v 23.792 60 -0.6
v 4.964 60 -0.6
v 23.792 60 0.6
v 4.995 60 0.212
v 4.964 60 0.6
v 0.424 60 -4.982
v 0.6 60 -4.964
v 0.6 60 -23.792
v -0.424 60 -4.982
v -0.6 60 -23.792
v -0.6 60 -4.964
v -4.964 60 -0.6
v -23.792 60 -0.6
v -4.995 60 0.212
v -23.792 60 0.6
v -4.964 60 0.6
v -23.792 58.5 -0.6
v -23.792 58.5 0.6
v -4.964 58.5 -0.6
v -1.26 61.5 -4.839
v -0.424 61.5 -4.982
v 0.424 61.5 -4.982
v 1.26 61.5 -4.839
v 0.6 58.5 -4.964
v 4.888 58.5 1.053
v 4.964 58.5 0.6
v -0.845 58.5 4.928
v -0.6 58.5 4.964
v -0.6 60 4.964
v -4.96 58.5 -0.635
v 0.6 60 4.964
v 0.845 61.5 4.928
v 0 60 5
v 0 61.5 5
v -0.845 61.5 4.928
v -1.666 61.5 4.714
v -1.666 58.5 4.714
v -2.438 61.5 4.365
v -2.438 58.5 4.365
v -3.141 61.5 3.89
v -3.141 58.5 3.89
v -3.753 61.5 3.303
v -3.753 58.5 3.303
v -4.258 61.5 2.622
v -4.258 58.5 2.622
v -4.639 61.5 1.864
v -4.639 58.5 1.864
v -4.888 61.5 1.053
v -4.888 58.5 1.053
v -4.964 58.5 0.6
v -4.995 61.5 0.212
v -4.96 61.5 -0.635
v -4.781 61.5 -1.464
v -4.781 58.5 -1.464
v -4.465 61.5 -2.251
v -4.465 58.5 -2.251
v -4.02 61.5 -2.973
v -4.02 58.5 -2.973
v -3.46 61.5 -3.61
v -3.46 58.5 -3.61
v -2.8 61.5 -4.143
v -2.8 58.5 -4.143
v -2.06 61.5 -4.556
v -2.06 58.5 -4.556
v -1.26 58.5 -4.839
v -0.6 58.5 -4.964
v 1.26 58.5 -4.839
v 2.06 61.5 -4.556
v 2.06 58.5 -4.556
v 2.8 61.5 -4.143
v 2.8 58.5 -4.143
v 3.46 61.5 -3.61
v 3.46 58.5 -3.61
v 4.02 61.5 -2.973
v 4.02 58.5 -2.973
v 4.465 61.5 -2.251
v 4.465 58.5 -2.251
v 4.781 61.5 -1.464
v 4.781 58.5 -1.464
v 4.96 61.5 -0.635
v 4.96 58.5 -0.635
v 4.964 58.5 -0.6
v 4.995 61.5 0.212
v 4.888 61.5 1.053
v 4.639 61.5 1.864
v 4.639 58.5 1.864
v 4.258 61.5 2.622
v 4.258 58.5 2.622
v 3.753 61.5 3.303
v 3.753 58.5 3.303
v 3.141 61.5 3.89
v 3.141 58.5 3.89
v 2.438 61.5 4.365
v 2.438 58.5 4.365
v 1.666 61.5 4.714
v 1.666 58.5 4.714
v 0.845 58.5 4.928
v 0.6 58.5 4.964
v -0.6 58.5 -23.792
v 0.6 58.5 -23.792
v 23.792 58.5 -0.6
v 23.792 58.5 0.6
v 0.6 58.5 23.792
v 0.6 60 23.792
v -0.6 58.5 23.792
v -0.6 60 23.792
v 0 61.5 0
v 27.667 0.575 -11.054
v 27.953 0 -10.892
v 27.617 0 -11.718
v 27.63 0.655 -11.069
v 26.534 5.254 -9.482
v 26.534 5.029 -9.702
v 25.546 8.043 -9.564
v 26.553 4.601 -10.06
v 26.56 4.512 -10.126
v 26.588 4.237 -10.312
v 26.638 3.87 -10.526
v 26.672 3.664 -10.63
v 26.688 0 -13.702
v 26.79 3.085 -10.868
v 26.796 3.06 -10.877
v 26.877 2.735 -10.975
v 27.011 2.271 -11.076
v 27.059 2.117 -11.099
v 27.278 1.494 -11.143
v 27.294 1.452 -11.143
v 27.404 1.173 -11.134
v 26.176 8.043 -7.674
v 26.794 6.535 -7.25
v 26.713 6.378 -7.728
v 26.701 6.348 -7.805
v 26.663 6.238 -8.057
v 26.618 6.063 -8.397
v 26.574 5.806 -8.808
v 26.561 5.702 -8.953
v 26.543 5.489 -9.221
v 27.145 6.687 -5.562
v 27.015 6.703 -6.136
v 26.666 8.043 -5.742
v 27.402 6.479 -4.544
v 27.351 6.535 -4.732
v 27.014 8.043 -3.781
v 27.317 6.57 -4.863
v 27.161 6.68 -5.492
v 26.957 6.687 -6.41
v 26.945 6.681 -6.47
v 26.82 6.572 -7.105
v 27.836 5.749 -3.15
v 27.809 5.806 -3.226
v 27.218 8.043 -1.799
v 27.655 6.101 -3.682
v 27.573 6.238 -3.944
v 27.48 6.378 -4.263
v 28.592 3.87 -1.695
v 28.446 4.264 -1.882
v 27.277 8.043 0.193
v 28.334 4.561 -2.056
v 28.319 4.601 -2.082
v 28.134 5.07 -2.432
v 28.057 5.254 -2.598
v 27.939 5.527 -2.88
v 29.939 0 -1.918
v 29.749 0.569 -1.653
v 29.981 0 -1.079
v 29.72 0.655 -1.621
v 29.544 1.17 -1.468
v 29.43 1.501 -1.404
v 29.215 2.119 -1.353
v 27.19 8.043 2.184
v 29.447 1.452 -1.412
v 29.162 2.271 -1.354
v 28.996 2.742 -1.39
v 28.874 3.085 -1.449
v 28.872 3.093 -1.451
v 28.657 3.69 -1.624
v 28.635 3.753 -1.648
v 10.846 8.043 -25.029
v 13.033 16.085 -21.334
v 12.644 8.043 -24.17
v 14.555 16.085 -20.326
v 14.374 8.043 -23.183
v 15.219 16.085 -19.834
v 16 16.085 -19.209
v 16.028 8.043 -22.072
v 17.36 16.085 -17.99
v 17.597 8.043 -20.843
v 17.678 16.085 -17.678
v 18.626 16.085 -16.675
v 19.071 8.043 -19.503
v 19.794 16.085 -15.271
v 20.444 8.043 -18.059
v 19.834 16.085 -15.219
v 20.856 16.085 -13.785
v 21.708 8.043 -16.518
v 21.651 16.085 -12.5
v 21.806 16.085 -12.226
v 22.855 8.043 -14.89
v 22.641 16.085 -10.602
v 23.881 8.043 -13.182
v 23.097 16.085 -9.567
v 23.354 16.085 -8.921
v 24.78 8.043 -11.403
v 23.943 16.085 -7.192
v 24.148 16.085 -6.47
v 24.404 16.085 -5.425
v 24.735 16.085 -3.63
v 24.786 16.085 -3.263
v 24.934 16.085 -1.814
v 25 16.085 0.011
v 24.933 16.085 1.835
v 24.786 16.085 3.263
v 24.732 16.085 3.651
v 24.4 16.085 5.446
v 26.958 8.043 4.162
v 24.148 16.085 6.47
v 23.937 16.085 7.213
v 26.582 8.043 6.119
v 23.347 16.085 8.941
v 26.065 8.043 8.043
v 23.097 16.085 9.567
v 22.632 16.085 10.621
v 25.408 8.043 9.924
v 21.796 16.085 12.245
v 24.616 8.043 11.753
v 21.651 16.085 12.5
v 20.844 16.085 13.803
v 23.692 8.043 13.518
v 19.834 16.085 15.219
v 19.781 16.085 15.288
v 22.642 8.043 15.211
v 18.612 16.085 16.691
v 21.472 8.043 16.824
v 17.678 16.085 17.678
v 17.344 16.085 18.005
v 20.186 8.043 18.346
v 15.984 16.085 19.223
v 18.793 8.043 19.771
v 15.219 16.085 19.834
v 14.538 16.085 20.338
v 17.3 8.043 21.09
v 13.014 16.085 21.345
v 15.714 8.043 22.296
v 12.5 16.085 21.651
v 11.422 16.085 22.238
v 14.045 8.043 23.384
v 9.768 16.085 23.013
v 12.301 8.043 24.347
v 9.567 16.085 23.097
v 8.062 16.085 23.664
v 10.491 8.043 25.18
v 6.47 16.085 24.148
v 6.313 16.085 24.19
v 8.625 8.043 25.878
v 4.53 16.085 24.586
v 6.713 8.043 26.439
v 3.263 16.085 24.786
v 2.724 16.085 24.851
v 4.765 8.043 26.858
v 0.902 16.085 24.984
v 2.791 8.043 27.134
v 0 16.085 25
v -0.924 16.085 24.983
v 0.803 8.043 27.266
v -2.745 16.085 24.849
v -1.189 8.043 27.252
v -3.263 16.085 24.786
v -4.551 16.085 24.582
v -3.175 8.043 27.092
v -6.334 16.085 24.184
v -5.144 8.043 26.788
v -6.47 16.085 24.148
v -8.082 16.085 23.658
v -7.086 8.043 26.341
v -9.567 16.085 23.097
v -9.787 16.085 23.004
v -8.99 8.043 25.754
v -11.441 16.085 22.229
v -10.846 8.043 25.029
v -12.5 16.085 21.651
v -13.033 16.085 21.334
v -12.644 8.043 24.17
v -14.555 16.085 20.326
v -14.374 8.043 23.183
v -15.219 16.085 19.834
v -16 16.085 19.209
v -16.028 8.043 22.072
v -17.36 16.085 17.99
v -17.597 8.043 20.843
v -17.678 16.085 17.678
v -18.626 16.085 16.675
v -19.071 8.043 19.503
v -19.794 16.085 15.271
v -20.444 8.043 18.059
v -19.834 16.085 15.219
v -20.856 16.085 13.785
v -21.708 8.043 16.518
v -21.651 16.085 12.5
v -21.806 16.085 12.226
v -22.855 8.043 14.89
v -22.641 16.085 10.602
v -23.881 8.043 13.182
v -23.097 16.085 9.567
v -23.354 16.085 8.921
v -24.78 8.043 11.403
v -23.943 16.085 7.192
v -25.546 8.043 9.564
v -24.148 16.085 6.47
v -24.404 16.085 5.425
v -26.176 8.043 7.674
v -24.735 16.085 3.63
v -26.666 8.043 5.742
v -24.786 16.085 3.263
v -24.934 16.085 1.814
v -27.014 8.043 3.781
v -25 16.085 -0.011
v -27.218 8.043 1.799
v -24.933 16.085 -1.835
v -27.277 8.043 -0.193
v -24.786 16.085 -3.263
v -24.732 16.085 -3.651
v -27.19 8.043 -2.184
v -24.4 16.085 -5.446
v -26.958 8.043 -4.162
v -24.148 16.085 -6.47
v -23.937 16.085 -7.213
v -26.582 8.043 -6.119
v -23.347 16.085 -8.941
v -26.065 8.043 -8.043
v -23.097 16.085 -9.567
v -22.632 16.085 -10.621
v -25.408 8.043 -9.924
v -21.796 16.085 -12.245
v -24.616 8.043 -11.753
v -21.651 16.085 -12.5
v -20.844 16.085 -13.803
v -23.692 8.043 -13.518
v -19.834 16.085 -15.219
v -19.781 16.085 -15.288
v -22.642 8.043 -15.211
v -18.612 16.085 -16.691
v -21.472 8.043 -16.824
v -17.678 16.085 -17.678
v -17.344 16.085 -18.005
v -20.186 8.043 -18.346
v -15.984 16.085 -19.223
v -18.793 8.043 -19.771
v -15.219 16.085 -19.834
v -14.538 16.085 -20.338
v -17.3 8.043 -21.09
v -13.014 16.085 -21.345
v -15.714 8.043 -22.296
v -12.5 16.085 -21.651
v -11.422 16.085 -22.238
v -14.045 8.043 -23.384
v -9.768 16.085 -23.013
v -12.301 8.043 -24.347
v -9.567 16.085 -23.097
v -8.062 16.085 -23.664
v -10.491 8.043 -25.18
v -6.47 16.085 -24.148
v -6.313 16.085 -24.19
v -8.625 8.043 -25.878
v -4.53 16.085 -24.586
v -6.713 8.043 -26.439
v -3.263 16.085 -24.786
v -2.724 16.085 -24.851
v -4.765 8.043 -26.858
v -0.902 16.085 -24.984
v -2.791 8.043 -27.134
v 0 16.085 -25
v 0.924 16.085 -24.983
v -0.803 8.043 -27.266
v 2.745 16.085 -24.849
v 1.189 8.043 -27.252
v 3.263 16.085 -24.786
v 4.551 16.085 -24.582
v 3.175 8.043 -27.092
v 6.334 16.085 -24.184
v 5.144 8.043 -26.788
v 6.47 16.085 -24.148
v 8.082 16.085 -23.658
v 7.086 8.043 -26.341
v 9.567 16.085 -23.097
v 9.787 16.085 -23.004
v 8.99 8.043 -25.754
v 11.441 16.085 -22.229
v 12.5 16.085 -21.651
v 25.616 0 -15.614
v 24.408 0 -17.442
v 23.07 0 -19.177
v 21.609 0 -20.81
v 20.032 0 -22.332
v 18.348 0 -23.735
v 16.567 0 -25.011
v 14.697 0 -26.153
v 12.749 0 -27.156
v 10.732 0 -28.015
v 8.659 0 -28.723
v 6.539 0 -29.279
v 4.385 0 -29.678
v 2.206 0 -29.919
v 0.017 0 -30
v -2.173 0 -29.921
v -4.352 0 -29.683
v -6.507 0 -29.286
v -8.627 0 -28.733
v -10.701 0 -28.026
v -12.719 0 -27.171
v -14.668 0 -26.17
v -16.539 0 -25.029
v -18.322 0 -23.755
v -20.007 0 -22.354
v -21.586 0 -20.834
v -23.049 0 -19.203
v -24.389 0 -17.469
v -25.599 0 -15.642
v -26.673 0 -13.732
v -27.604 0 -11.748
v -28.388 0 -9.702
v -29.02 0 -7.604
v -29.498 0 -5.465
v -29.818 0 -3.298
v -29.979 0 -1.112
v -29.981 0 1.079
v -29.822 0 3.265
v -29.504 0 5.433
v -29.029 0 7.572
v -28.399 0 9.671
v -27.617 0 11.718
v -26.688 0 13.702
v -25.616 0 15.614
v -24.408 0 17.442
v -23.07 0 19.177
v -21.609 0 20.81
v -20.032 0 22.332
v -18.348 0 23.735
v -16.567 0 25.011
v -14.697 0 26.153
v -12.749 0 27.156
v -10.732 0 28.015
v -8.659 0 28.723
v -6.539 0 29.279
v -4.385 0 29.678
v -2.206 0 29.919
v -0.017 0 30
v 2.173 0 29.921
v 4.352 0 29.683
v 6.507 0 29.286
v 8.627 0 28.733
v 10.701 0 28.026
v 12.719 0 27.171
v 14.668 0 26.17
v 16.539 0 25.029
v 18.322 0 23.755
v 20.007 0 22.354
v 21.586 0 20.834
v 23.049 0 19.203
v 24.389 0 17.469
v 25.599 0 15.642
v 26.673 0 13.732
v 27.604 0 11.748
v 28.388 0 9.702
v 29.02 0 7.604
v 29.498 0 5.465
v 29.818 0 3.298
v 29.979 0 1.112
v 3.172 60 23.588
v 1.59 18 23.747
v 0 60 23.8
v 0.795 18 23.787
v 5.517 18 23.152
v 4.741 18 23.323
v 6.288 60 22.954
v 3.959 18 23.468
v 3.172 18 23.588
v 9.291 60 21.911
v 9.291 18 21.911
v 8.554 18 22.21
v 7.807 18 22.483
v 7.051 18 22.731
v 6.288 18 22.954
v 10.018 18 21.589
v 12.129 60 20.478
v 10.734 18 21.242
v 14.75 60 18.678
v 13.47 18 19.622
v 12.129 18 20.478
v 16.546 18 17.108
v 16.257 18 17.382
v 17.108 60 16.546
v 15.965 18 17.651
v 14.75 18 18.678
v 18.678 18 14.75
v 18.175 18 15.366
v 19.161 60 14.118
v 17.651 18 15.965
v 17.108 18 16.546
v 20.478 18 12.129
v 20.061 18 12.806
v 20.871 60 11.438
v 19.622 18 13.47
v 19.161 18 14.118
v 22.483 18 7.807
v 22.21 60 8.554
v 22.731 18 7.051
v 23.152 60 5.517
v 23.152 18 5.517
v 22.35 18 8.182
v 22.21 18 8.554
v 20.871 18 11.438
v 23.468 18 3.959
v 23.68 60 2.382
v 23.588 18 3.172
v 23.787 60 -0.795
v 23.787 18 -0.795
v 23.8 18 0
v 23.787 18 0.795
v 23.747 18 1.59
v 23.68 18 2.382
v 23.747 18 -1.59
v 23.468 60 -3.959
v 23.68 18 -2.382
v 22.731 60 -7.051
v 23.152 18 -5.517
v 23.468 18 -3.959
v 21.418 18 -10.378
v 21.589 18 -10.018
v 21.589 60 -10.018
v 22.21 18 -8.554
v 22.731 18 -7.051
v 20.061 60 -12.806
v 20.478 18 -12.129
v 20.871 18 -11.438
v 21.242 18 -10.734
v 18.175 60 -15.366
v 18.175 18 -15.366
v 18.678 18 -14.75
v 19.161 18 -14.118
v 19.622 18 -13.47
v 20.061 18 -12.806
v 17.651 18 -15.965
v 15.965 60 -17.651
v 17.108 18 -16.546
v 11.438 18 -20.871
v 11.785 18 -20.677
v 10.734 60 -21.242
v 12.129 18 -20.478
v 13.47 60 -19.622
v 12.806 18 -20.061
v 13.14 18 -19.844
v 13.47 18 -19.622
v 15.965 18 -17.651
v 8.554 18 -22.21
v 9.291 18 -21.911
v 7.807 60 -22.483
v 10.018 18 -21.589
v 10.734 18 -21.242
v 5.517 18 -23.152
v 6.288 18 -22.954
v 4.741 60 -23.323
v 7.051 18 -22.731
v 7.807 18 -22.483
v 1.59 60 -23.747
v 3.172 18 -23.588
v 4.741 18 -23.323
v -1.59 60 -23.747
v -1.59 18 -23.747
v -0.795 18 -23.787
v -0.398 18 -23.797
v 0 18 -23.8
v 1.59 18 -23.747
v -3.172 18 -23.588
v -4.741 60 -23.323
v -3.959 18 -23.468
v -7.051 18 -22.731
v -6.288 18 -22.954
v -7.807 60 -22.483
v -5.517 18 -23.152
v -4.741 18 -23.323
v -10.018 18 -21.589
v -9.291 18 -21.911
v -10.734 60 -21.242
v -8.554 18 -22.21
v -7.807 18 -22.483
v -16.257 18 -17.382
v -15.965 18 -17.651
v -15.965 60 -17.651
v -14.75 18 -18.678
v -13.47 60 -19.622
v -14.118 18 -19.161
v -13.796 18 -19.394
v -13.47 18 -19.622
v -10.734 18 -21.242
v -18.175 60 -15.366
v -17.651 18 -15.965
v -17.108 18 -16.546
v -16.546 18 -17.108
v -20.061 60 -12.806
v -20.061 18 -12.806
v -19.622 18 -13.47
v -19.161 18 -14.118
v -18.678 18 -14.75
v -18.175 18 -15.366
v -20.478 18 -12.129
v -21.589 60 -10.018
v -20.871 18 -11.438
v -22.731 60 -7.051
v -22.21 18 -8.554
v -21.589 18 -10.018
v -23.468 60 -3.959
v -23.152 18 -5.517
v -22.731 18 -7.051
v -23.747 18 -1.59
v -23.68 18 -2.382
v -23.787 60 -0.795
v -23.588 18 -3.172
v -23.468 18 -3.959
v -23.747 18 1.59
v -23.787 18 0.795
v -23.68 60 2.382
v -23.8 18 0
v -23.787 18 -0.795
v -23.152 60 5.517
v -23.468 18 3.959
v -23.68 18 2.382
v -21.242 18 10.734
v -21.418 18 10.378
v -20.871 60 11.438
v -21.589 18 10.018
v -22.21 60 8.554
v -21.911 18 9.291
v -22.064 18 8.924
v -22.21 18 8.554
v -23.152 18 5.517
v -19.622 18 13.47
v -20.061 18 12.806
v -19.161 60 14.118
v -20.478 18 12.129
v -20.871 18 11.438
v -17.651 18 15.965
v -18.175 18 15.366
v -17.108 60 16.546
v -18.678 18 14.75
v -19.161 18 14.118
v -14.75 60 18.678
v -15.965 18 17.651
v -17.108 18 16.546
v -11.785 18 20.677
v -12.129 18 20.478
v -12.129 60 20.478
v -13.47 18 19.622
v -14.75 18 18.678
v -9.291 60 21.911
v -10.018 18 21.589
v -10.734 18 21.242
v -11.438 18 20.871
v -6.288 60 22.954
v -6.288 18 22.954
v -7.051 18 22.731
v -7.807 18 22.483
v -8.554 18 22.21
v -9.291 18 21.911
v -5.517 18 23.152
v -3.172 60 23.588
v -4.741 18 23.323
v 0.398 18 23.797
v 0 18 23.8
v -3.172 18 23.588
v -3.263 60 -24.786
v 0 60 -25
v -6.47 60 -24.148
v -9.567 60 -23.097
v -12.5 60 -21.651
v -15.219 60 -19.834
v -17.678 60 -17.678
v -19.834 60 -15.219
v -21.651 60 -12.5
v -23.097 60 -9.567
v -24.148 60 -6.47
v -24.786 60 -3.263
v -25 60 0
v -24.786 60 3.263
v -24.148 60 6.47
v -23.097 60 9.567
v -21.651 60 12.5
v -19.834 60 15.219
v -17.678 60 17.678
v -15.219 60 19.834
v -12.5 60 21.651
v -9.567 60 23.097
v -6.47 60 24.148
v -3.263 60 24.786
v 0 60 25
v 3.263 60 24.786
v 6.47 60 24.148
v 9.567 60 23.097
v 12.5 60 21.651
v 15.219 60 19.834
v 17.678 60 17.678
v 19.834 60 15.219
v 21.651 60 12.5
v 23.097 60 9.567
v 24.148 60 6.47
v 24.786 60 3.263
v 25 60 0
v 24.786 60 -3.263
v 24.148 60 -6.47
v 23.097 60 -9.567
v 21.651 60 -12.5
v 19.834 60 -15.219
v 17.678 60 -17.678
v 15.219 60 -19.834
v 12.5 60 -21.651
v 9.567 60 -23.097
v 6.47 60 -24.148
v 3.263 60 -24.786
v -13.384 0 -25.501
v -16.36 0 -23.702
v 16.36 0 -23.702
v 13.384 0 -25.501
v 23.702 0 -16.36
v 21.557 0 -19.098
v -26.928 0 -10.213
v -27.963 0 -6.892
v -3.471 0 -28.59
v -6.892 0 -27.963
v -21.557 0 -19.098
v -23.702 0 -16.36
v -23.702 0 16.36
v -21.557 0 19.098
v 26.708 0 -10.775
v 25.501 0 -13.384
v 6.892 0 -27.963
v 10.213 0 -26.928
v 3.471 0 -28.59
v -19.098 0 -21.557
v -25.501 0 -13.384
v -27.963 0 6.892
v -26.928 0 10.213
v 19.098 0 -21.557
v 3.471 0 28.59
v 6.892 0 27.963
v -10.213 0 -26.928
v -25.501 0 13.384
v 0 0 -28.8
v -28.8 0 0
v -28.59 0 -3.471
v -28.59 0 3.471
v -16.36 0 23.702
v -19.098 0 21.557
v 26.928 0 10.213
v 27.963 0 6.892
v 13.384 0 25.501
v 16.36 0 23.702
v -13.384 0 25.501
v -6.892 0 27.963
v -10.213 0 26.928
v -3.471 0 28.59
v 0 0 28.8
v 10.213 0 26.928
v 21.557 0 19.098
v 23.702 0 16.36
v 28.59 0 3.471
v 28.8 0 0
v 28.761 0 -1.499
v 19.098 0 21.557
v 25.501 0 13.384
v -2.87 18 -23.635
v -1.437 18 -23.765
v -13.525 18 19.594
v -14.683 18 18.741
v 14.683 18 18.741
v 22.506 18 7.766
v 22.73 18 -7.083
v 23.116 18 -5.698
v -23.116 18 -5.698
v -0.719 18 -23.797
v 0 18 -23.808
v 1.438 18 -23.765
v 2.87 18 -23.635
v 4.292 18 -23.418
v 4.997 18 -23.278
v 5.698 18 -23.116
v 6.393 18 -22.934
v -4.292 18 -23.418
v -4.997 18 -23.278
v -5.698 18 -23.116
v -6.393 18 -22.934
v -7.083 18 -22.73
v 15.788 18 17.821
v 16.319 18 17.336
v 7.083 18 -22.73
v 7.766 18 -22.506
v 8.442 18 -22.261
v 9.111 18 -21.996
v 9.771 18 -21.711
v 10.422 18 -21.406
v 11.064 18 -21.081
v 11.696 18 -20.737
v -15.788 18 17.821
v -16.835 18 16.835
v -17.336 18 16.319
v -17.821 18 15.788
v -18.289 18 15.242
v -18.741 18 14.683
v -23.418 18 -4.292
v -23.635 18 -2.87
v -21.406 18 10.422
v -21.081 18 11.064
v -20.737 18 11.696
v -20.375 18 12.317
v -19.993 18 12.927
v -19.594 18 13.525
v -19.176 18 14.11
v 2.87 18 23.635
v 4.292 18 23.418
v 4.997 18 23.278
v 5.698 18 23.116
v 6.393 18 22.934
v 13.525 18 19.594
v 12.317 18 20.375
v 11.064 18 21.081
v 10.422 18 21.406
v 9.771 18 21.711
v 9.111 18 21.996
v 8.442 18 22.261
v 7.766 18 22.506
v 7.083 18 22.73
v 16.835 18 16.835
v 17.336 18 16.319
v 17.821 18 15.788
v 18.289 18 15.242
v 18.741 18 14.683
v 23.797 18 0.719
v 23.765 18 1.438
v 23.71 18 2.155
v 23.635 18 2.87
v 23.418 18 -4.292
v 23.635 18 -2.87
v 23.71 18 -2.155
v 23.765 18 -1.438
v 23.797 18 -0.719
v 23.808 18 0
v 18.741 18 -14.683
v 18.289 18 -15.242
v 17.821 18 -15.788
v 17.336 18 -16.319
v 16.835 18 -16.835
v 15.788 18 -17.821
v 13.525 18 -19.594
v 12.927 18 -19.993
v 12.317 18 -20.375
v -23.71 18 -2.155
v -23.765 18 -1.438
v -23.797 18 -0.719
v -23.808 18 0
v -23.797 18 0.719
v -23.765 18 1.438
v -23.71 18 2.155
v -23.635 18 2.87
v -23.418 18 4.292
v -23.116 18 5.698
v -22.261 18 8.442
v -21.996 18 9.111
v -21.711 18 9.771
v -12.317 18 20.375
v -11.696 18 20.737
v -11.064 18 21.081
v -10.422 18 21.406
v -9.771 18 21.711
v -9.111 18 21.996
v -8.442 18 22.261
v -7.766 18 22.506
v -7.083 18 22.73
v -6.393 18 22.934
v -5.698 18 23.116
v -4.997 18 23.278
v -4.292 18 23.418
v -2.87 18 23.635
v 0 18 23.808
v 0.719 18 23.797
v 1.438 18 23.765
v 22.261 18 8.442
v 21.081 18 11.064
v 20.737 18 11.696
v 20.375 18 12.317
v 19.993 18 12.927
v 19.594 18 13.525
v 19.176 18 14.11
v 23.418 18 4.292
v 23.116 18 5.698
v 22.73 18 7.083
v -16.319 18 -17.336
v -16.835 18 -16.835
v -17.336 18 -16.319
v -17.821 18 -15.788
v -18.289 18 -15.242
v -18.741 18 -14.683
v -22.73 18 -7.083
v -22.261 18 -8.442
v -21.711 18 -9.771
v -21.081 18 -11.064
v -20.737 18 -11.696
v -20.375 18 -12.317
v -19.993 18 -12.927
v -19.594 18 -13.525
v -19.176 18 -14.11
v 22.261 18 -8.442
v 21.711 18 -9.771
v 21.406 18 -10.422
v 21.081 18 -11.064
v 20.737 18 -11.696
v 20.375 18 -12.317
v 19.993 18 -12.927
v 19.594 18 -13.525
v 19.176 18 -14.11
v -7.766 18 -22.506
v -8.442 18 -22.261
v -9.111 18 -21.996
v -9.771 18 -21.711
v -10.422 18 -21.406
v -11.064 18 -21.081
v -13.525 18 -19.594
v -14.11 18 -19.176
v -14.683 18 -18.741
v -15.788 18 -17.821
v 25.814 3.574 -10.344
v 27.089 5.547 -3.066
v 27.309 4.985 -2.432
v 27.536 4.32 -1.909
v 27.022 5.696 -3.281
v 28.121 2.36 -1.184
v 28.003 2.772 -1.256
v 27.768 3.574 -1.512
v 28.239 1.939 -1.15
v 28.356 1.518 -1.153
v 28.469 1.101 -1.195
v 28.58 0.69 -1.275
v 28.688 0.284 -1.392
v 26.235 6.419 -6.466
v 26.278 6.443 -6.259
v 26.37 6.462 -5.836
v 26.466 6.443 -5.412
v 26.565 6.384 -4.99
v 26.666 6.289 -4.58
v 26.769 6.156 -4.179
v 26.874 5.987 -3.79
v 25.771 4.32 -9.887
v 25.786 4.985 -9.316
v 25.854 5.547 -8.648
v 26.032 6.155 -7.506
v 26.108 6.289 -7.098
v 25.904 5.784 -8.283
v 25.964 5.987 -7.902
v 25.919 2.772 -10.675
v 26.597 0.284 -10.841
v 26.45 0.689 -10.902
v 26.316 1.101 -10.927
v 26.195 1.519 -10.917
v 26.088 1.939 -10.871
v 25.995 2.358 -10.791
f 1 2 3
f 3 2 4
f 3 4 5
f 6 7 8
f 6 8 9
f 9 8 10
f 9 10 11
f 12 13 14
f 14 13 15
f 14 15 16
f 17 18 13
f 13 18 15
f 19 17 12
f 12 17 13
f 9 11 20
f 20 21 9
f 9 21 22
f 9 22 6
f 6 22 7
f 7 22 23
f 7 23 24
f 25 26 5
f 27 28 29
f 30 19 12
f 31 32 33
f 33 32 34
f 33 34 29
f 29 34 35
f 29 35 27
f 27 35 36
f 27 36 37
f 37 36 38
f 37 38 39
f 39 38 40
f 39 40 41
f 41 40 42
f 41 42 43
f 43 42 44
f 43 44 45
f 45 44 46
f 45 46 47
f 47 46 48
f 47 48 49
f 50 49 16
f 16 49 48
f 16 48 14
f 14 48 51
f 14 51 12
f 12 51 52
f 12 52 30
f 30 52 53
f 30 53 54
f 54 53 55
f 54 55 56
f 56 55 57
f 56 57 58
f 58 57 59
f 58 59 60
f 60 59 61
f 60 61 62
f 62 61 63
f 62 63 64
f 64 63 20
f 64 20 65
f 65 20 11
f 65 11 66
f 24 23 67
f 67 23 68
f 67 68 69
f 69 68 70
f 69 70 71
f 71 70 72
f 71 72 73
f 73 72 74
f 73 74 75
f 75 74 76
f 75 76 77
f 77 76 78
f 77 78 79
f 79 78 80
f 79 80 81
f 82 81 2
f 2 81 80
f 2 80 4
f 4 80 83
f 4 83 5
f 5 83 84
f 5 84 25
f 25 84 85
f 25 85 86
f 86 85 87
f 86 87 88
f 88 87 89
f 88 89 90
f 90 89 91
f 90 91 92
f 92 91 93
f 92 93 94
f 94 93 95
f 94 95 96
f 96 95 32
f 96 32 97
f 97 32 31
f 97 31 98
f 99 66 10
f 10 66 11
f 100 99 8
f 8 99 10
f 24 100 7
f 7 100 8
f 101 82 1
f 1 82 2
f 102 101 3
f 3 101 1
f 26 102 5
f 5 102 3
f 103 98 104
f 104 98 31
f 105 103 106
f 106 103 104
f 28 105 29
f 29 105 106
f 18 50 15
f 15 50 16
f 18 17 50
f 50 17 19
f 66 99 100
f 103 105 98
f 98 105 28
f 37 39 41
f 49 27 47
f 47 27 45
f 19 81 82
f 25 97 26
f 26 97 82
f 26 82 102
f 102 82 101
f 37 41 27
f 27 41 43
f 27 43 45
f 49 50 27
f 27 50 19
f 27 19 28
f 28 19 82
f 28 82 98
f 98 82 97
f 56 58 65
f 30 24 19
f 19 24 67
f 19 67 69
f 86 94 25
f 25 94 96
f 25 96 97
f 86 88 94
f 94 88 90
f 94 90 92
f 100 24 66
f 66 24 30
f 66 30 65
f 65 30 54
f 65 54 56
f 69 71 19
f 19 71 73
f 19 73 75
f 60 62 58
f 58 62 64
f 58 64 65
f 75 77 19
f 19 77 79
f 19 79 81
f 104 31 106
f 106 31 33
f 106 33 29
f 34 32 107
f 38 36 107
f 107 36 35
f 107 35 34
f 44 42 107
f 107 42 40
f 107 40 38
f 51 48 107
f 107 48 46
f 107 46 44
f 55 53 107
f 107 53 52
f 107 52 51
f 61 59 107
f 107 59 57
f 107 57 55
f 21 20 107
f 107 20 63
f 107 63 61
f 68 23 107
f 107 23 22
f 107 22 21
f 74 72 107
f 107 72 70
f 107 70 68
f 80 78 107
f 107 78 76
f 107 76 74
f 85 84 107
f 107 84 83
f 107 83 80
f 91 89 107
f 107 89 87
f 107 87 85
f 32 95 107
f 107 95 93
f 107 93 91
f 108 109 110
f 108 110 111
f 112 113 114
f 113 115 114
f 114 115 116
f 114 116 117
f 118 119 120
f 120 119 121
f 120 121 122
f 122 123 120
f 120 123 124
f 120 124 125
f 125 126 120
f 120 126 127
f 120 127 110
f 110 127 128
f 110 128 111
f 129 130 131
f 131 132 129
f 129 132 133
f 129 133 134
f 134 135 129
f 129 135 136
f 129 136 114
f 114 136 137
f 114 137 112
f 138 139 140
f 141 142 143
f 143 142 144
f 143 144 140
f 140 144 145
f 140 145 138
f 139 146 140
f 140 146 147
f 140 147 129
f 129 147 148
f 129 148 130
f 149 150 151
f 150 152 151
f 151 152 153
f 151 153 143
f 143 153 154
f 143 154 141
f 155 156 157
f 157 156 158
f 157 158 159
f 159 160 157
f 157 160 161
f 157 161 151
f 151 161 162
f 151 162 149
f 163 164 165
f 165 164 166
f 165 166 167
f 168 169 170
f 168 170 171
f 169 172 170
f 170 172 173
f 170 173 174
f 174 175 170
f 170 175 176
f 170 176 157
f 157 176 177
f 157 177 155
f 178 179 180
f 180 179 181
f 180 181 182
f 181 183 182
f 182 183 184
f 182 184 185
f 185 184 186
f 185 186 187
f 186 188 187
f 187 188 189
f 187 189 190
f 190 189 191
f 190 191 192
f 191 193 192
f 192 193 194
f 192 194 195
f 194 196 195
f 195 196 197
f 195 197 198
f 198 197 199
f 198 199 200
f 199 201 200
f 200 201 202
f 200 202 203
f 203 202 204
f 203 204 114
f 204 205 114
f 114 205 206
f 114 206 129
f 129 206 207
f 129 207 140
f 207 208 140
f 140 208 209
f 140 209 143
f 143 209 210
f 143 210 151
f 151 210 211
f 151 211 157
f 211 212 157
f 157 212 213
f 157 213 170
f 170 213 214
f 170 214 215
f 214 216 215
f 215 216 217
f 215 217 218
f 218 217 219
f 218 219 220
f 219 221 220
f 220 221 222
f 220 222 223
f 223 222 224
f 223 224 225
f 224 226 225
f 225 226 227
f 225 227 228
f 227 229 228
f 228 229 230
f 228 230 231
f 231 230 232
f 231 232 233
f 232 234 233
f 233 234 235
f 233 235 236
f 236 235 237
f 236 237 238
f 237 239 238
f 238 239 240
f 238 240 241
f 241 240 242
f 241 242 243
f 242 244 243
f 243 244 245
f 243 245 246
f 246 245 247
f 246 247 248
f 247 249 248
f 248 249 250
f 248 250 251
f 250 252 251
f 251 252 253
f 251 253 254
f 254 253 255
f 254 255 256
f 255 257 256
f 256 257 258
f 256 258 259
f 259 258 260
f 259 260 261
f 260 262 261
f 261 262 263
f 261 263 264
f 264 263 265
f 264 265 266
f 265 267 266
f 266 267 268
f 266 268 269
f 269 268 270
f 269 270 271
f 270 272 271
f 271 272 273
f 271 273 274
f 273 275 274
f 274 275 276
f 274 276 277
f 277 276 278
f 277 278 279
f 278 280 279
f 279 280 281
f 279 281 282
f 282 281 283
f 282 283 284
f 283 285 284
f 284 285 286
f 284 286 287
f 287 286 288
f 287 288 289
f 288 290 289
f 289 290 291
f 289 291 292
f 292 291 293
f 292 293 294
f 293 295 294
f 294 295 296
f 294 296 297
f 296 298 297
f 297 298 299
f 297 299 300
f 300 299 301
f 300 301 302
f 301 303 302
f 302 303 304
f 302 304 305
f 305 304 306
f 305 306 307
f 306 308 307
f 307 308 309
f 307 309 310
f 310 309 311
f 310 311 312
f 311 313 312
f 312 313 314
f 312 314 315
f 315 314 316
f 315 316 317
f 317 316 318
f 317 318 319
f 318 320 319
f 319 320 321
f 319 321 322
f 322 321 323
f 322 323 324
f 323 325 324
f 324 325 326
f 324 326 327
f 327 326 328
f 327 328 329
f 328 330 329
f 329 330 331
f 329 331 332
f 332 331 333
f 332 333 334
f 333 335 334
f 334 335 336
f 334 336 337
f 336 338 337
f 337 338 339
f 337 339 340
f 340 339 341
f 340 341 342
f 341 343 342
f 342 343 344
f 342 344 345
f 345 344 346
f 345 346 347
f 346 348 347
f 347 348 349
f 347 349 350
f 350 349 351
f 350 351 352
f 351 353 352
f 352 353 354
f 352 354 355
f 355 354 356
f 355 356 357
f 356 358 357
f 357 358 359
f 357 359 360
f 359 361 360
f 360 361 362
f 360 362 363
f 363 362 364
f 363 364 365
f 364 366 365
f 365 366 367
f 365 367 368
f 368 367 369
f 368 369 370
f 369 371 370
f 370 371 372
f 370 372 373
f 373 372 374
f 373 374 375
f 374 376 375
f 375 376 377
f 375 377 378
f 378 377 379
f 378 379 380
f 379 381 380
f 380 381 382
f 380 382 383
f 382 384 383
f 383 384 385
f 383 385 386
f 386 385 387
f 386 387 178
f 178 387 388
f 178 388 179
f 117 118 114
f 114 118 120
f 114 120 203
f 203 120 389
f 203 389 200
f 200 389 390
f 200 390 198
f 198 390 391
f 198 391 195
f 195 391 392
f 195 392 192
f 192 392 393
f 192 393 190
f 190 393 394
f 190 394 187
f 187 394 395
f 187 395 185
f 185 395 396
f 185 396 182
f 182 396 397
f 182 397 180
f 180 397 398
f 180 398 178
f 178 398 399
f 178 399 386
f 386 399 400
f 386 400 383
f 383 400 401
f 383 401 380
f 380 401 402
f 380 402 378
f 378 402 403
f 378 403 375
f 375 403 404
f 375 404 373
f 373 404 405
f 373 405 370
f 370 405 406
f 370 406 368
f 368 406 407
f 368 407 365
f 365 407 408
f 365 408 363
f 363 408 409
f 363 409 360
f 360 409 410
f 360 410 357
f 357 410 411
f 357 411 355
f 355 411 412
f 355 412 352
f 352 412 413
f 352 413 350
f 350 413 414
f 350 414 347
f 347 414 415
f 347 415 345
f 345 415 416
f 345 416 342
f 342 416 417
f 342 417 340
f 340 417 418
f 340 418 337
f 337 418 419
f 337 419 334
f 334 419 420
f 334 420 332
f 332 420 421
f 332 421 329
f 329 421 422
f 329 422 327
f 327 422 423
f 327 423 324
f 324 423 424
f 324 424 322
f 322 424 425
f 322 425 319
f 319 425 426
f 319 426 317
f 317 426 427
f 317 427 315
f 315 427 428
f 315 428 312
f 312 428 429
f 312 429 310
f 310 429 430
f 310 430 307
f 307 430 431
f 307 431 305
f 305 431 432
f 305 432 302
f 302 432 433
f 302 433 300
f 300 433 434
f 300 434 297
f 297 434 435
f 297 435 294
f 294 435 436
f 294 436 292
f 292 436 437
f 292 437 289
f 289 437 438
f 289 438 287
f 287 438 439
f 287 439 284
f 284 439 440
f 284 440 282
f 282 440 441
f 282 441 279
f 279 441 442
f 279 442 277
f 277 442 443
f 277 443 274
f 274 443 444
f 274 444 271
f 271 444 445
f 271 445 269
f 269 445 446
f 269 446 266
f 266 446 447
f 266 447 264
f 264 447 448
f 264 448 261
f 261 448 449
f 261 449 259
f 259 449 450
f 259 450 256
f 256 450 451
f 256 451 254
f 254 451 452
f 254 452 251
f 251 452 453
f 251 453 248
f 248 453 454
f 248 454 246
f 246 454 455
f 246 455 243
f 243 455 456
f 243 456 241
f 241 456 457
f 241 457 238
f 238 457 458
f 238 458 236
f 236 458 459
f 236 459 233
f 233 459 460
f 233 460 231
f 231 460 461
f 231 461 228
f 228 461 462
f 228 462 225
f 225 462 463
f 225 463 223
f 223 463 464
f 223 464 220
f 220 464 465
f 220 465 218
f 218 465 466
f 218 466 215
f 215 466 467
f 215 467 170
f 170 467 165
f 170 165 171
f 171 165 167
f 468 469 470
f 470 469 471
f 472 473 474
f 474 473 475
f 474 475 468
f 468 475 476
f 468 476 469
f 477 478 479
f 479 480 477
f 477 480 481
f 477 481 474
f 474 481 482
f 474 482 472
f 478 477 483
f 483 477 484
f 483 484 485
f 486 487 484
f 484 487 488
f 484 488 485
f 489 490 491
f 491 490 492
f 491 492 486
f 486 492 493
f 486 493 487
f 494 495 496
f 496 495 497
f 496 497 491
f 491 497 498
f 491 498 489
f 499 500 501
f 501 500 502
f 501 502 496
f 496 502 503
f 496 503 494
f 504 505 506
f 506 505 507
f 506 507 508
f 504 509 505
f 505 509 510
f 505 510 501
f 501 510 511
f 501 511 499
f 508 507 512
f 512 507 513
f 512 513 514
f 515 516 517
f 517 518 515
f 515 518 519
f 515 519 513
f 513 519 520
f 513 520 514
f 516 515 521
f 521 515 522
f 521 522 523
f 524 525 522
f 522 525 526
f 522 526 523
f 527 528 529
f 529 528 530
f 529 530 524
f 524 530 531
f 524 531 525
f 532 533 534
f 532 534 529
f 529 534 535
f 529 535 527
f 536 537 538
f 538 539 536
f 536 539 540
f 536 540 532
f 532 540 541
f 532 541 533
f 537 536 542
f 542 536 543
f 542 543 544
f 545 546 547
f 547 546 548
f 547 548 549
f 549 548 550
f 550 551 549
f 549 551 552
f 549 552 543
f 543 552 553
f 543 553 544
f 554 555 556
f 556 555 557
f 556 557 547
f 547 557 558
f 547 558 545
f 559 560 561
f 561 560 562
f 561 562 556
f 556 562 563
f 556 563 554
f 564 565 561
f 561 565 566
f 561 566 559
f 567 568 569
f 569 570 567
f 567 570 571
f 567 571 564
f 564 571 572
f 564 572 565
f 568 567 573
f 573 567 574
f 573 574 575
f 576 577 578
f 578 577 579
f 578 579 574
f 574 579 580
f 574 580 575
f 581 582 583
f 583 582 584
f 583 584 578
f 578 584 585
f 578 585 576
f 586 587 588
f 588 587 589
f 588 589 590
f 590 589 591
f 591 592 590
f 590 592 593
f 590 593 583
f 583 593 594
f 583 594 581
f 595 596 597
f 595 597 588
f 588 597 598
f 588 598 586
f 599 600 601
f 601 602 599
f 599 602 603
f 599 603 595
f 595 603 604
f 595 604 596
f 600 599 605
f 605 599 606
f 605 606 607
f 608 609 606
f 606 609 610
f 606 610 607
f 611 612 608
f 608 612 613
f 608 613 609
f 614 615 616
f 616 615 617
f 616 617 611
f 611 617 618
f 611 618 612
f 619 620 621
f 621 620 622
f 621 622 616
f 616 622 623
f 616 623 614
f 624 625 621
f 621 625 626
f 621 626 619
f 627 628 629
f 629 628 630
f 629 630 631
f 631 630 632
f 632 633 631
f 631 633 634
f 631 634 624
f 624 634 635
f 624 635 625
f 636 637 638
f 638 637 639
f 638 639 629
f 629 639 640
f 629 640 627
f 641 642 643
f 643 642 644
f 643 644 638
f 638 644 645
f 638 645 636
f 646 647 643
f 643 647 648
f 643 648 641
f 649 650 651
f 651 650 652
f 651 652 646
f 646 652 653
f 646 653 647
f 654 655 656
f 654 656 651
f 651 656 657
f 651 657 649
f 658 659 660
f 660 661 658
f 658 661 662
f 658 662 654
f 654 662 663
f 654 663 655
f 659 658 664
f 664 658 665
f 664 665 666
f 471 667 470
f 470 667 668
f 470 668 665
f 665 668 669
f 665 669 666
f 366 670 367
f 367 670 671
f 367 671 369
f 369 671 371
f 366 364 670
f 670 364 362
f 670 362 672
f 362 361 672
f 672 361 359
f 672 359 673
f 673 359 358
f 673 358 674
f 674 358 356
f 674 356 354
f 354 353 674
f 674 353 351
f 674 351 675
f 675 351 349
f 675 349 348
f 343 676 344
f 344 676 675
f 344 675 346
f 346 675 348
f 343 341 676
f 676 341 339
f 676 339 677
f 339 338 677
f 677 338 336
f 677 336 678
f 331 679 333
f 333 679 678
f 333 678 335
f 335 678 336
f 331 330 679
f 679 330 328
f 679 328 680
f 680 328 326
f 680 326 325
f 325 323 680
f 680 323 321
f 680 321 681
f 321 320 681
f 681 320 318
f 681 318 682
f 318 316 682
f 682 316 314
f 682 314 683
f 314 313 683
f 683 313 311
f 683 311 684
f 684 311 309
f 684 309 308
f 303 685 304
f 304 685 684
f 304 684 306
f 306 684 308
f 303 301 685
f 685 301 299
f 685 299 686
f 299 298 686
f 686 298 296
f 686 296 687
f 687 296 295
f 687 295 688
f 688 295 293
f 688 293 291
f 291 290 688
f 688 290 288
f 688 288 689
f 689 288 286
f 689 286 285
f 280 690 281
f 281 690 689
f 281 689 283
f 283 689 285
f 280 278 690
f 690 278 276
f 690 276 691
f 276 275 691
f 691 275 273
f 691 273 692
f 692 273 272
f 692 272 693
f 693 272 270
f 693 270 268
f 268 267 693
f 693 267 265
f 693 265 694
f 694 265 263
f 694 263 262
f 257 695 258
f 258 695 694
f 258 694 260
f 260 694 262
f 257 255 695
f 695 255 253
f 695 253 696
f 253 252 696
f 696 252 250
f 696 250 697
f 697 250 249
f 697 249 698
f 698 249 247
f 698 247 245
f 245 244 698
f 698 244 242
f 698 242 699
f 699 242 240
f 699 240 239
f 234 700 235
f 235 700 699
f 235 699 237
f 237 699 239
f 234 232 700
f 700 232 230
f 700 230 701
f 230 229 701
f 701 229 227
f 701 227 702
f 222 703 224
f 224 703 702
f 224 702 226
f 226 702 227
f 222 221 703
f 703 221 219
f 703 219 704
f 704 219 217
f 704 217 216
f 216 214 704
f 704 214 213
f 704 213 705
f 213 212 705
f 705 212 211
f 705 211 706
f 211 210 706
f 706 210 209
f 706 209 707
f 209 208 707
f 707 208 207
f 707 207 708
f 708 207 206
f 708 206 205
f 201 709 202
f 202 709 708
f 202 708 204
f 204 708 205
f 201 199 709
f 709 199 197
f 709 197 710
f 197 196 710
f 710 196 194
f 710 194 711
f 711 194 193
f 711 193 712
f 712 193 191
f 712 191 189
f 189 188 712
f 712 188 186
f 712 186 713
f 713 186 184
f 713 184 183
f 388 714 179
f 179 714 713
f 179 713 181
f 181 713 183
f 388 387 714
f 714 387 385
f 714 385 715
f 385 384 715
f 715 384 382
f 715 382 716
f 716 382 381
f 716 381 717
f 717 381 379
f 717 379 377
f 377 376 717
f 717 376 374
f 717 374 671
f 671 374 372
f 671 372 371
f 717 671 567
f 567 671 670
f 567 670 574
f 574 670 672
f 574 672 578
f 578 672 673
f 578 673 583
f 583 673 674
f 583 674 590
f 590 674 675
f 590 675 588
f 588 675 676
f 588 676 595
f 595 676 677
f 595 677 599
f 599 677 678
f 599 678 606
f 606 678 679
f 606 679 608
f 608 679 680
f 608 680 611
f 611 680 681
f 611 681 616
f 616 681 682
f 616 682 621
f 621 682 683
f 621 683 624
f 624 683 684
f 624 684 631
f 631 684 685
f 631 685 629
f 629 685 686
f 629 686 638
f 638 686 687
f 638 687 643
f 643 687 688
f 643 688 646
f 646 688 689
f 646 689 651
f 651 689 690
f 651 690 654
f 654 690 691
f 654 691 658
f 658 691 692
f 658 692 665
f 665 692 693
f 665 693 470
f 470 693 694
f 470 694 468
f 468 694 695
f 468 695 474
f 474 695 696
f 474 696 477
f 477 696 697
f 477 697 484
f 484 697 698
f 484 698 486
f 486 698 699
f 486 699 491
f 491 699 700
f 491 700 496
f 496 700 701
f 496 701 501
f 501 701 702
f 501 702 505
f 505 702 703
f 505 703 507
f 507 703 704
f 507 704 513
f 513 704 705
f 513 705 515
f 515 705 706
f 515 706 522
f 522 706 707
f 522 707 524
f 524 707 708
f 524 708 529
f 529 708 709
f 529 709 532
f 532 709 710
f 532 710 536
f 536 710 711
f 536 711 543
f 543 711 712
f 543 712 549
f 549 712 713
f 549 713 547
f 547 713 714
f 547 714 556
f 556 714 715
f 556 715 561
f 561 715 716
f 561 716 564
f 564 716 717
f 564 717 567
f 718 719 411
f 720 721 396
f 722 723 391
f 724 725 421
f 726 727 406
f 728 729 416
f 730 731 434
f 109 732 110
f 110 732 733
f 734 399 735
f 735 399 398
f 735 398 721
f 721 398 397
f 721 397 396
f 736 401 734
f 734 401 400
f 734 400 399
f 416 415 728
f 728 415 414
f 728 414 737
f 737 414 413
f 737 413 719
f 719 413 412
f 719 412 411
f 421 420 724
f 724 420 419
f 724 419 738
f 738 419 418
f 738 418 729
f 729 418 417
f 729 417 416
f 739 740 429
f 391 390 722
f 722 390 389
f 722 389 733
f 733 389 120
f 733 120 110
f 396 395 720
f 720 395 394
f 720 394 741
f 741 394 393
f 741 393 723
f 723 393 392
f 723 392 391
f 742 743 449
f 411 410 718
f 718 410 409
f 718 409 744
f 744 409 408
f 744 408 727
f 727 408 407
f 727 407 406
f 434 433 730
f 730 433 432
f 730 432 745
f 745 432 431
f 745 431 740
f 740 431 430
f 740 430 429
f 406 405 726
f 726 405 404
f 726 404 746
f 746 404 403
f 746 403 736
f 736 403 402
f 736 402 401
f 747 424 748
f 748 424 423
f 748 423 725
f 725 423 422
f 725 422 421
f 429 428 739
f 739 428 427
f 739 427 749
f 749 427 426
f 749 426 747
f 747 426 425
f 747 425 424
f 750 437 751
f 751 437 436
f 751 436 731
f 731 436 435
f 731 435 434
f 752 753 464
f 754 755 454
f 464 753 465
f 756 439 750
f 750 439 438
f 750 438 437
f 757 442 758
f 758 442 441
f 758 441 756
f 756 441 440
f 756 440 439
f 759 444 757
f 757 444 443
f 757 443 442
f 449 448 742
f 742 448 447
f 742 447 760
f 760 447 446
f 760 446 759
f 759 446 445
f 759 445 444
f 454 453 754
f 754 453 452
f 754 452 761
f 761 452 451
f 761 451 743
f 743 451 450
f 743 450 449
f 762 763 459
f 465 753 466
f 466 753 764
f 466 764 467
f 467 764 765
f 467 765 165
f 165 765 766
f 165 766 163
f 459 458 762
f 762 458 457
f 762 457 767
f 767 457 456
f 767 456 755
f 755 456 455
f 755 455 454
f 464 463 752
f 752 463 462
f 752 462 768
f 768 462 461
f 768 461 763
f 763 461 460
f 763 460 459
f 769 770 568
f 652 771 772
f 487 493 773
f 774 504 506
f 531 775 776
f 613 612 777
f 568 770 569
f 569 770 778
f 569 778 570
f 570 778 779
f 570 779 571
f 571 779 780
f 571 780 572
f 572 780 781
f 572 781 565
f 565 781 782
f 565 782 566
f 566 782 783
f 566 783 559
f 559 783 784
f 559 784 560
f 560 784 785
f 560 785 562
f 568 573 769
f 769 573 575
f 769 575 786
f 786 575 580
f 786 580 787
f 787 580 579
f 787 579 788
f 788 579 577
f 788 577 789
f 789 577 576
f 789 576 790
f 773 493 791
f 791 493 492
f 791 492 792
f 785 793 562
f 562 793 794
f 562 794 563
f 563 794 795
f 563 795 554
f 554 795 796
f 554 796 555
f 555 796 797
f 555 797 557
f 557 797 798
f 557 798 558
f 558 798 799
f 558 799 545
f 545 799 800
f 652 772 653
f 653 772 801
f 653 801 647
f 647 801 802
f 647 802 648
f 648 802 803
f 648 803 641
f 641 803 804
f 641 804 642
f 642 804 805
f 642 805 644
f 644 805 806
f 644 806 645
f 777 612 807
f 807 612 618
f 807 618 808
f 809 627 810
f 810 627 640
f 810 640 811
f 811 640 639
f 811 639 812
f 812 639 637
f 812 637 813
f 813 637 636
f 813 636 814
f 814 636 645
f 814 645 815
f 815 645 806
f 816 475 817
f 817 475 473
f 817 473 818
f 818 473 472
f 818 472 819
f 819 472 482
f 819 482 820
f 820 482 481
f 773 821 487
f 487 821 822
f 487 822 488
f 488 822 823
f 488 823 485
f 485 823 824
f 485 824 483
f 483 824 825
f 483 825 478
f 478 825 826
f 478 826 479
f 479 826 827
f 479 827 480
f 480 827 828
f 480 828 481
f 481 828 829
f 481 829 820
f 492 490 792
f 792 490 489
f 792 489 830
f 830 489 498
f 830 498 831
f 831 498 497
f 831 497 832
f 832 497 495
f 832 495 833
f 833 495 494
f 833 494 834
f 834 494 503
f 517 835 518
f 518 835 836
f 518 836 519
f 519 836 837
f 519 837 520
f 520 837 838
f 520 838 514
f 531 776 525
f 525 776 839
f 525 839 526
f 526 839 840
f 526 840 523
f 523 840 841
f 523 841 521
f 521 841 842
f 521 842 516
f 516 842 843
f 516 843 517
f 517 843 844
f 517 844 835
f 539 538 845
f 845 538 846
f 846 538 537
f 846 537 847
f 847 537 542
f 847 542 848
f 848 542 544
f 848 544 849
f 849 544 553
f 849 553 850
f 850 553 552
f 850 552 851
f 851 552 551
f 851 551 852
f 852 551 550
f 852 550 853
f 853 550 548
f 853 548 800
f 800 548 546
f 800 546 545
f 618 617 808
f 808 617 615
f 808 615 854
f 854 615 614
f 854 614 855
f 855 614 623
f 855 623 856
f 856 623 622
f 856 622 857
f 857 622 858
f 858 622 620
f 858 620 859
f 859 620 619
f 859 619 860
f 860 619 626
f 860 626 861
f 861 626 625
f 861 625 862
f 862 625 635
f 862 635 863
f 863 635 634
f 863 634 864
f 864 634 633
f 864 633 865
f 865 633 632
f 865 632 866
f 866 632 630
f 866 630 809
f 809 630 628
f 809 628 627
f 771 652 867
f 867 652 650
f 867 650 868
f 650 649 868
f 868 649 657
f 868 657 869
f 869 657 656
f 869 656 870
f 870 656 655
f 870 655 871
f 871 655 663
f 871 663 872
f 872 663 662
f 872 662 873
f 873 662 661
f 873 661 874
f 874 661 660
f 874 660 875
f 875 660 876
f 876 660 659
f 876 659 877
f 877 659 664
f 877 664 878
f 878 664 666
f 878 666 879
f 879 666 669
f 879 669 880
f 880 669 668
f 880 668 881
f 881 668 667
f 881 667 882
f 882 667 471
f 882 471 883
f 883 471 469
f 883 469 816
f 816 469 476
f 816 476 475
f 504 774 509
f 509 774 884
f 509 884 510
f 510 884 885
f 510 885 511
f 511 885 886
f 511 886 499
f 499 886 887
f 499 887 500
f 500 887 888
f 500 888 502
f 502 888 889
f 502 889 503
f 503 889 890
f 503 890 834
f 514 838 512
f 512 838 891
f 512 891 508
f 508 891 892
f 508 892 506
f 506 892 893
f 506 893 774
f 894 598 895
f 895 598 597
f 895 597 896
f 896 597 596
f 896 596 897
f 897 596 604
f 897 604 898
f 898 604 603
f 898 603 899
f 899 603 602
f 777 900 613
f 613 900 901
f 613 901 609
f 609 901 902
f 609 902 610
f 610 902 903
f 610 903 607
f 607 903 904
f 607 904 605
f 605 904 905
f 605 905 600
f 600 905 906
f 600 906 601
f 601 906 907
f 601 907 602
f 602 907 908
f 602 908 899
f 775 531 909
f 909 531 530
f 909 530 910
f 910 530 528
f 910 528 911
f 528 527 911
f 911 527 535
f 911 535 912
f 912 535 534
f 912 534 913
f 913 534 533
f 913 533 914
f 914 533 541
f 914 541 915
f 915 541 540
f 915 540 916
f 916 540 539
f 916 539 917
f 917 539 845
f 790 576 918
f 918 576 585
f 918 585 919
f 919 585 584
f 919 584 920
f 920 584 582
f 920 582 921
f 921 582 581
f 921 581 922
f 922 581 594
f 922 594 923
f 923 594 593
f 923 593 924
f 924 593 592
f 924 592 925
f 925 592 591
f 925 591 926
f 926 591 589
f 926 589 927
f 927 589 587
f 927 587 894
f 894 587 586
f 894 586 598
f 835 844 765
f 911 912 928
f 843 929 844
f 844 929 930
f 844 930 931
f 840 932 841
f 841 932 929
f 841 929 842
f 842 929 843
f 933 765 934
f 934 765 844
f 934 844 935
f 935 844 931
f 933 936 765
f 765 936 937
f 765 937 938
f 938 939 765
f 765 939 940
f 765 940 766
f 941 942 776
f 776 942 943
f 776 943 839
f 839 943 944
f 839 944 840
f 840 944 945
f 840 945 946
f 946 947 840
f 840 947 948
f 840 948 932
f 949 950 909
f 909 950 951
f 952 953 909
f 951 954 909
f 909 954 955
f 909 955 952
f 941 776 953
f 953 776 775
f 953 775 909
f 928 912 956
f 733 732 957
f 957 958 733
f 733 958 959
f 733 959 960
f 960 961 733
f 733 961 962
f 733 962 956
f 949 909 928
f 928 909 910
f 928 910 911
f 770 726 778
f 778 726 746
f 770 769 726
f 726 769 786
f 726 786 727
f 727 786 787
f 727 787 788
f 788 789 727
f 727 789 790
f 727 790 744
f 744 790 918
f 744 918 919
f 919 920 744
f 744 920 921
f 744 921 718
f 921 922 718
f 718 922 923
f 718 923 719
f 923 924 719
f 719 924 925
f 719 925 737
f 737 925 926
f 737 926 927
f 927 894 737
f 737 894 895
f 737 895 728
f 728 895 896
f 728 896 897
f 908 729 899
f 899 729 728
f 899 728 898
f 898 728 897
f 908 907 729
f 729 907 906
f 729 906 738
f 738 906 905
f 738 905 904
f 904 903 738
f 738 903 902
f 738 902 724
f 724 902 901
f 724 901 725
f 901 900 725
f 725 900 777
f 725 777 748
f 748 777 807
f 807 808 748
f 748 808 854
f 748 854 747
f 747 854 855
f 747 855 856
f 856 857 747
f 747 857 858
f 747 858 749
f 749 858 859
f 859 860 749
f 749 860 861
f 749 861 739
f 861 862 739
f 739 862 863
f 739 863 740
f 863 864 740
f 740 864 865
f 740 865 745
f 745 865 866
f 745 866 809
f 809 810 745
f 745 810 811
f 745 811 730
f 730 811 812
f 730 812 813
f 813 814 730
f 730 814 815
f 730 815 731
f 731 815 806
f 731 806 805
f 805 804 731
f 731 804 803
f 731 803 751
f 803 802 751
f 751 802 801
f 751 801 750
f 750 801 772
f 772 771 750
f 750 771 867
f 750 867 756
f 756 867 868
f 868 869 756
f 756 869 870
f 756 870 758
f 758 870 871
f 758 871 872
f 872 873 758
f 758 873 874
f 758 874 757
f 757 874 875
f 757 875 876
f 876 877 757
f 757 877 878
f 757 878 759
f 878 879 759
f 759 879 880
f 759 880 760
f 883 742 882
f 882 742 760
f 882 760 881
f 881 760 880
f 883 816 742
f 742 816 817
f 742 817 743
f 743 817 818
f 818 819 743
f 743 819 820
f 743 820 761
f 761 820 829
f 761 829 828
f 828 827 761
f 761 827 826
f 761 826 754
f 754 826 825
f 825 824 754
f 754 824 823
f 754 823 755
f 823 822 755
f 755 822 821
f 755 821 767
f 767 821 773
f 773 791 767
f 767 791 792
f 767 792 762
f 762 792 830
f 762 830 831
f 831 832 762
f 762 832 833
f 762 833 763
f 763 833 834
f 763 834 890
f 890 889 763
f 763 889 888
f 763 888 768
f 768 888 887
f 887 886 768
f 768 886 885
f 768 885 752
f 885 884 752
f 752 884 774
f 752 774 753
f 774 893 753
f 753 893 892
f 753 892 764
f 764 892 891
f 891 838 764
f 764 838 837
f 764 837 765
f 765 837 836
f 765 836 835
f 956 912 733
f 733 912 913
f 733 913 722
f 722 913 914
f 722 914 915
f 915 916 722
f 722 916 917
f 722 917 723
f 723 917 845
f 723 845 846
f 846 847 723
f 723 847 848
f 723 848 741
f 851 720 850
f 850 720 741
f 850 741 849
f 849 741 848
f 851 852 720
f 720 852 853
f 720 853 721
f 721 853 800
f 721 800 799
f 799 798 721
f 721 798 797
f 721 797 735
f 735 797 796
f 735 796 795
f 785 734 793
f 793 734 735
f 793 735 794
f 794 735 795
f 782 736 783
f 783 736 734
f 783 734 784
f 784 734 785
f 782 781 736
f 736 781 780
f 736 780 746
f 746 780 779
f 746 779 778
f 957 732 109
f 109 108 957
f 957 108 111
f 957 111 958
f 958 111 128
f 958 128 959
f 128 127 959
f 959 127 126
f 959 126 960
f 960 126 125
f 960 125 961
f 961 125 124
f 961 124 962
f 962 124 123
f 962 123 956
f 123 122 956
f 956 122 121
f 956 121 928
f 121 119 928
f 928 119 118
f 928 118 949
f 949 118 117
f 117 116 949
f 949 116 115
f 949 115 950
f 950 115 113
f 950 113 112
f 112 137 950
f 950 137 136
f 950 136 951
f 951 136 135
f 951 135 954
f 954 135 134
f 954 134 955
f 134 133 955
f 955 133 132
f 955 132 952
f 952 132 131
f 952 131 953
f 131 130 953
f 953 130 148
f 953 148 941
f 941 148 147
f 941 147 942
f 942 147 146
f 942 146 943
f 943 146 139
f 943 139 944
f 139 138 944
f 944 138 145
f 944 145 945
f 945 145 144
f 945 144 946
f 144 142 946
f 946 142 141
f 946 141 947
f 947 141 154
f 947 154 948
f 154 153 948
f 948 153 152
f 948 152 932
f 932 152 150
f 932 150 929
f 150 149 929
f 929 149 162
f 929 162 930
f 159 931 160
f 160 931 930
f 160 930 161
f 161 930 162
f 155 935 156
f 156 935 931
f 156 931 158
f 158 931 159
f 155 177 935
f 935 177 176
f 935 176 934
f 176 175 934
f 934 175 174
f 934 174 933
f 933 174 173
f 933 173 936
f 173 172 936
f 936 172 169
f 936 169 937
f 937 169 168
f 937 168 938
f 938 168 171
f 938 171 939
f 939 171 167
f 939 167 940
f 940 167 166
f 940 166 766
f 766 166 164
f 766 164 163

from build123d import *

# Parameters (mm, degrees)
SKETCH1_R                  = 25
BOSS_EXTRUDE1_DEPTH        = 60
SKETCH3_R                  = 23.8
CUT_EXTRUDE1_DEPTH         = 43.5
SKETCH4_R                  = 28.8
CUT_EXTRUDE2_DEPTH         = 18
CUT_EXTRUDE2_DRAFT         = -15.5
BOSS_EXTRUDE2_DEPTH        = 1.5
SKETCH7_R                  = 5
BOSS_EXTRUDE3_DEPTH        = 1.5
F_10_0MM_START             = -28.308378884
F_10_0MM_DOWEL_HOLE2_DEPTH = 57.308378884


with BuildPart() as part:
    # Sketch1 → Boss-Extrude1 (new body)
    with BuildSketch(Plane(origin=(0, 0, 0), x_dir=(1, 0, 0), z_dir=(0, 1, 0))):
        with Locations(Location((0, 0, 0), (0, 0, 270))):
            Circle(SKETCH1_R)
    extrude(amount=BOSS_EXTRUDE1_DEPTH)

    # Loft1: read off the stored shape, not the designer's step
    # Loft1: loft between two sections, ruled curve by curve
    loft1_from = [
        Edge.make_bspline([(8.658923116, 0, -28.723214487), (-48.787505858, 0, -46.04106072), (-66.10535209, 0, 11.405368254), (-8.658923116, 0, 28.723214487), (48.787505858, 0, 46.04106072), (66.10535209, 0, -11.405368254), (8.658923116, 0, -28.723214487)], [0, 0, 0, 0, 0.5, 0.5, 0.5, 1, 1, 1, 1], 3, [1, 0.333333333, 0.333333333, 1, 0.333333333, 0.333333333, 1]),
    ]
    loft1_to = [
        Edge.make_bspline([(24.972981891, 60, -1.161970511), (22.649040869, 60, -51.107934293), (-27.296922913, 60, -48.783993271), (-24.972981891, 60, 1.161970511), (-22.649040869, 60, 51.107934293), (27.296922913, 60, 48.783993271), (24.972981891, 60, -1.161970511)], [0, 0, 0, 0, 0.5, 0.5, 0.5, 1, 1, 1, 1], 3, [1, 0.333333333, 0.333333333, 1, 0.333333333, 0.333333333, 1]),
    ]
    loft1 = Solid(Shell([*[Face.make_surface_from_curves(loft1_from[k], loft1_to[k]) for k in range(1)], Face(Wire(loft1_from)), Face(Wire(loft1_to))]))
    add(loft1)

    # Sketch3 → Cut-Extrude1 (cut)
    with BuildSketch(Plane(origin=(0, 60, 0), x_dir=(1, 0, 0), z_dir=(0, 1, 0))):
        with Locations(Location((0, 0, 0), (0, 0, 270))):
            Circle(SKETCH3_R)
    extrude(amount=-CUT_EXTRUDE1_DEPTH, mode=Mode.SUBTRACT)


with BuildPart() as cut_extrude2_tool:
    # Sketch4 → Cut-Extrude2 (with draft: the straight prism first)
    with BuildSketch(Plane.XZ):
        Circle(SKETCH4_R)
    extrude(amount=-CUT_EXTRUDE2_DEPTH)
    # Cut-Extrude2: the draft: its side faces are tilted about the plane it starts from
    cut_extrude2_sides = [cut_extrude2_tool.faces().sort_by_distance(p)[0] for p in [
        (-28.8, 9, 0),
    ]]
    draft(cut_extrude2_sides, Plane.XZ, CUT_EXTRUDE2_DRAFT)


with BuildPart() as part_1:
    add(part.part)

    # Cut-Extrude2: cut by cut_extrude2_tool
    add(cut_extrude2_tool.part, mode=Mode.SUBTRACT)

    # Ø10.0mm Dowel Hole2: read off the stored shape, not the designer's step
    # Ø10.0mm Dowel Hole2 outline → Ø10.0mm Dowel Hole2 (cut)
    with BuildSketch(Plane(origin=(0, 0, 0), x_dir=(-0.32323309601854383, 0.9436126294827636, 0.07152322083695323), z_dir=(0.9213269803701237, 0.33105166587803897, -0.20386610743682995)).offset(F_10_0MM_START)):
        with BuildLine():
            Line((-11, -4.086571585), (-9.814355471, -4.595129374))
            ThreePointArc((-9.814355471, -4.595129374), (-2.843369415, -4.13e-07), (-9.814354711, 4.5951297))
            Line((-9.814354711, 4.5951297), (-11, 4.086571817))
            Line((-11, 4.086571817), (-11, -4.086571585))
        make_face()
    extrude(amount=F_10_0MM_DOWEL_HOLE2_DEPTH, mode=Mode.SUBTRACT)


with BuildPart() as body_2:
    # Sketch6 → Boss-Extrude2 (new body)
    with BuildSketch(Plane(origin=(0, 60, 0), x_dir=(1, 0, 0), z_dir=(0, 1, 0))):
        with BuildLine():
            Line((-4.963869458, 0.6), (-23.792435773, 0.6))
            Line((-23.792435773, 0.6), (-23.792435773, -0.6))
            Line((-23.792435773, -0.6), (-4.963869458, -0.6))
            ThreePointArc((-4.963869458, -0.6), (-3.535533906, -3.535533906), (-0.6, -4.963869458))
            Line((-0.6, -4.963869458), (-0.6, -23.792435773))
            Line((-0.6, -23.792435773), (0.6, -23.792435773))
            Line((0.6, -23.792435773), (0.6, -4.963869458))
            ThreePointArc((0.6, -4.963869458), (3.535533906, -3.535533906), (4.963869458, -0.6))
            Line((4.963869458, -0.6), (23.792435773, -0.6))
            Line((23.792435773, -0.6), (23.792435773, 0.6))
            Line((23.792435773, 0.6), (4.963869458, 0.6))
            ThreePointArc((4.963869458, 0.6), (3.535533906, 3.535533906), (0.6, 4.963869458))
            Line((0.6, 4.963869458), (0.6, 23.792435773))
            Line((0.6, 23.792435773), (-0.6, 23.792435773))
            Line((-0.6, 23.792435773), (-0.6, 4.963869458))
            ThreePointArc((-0.6, 4.963869458), (-3.535533906, 3.535533906), (-4.963869458, 0.6))
        make_face()
    extrude(amount=-BOSS_EXTRUDE2_DEPTH)

    # Sketch7 → Boss-Extrude3 (add)
    with BuildSketch(Plane(origin=(0, 60, 0), x_dir=(1, 0, 0), z_dir=(0, 1, 0))):
        with Locations(Location((0, 0, 0), (0, 0, 270))):
            Circle(SKETCH7_R)
    extrude(amount=BOSS_EXTRUDE3_DEPTH)


solid = Compound([part_1.part, body_2.part])
